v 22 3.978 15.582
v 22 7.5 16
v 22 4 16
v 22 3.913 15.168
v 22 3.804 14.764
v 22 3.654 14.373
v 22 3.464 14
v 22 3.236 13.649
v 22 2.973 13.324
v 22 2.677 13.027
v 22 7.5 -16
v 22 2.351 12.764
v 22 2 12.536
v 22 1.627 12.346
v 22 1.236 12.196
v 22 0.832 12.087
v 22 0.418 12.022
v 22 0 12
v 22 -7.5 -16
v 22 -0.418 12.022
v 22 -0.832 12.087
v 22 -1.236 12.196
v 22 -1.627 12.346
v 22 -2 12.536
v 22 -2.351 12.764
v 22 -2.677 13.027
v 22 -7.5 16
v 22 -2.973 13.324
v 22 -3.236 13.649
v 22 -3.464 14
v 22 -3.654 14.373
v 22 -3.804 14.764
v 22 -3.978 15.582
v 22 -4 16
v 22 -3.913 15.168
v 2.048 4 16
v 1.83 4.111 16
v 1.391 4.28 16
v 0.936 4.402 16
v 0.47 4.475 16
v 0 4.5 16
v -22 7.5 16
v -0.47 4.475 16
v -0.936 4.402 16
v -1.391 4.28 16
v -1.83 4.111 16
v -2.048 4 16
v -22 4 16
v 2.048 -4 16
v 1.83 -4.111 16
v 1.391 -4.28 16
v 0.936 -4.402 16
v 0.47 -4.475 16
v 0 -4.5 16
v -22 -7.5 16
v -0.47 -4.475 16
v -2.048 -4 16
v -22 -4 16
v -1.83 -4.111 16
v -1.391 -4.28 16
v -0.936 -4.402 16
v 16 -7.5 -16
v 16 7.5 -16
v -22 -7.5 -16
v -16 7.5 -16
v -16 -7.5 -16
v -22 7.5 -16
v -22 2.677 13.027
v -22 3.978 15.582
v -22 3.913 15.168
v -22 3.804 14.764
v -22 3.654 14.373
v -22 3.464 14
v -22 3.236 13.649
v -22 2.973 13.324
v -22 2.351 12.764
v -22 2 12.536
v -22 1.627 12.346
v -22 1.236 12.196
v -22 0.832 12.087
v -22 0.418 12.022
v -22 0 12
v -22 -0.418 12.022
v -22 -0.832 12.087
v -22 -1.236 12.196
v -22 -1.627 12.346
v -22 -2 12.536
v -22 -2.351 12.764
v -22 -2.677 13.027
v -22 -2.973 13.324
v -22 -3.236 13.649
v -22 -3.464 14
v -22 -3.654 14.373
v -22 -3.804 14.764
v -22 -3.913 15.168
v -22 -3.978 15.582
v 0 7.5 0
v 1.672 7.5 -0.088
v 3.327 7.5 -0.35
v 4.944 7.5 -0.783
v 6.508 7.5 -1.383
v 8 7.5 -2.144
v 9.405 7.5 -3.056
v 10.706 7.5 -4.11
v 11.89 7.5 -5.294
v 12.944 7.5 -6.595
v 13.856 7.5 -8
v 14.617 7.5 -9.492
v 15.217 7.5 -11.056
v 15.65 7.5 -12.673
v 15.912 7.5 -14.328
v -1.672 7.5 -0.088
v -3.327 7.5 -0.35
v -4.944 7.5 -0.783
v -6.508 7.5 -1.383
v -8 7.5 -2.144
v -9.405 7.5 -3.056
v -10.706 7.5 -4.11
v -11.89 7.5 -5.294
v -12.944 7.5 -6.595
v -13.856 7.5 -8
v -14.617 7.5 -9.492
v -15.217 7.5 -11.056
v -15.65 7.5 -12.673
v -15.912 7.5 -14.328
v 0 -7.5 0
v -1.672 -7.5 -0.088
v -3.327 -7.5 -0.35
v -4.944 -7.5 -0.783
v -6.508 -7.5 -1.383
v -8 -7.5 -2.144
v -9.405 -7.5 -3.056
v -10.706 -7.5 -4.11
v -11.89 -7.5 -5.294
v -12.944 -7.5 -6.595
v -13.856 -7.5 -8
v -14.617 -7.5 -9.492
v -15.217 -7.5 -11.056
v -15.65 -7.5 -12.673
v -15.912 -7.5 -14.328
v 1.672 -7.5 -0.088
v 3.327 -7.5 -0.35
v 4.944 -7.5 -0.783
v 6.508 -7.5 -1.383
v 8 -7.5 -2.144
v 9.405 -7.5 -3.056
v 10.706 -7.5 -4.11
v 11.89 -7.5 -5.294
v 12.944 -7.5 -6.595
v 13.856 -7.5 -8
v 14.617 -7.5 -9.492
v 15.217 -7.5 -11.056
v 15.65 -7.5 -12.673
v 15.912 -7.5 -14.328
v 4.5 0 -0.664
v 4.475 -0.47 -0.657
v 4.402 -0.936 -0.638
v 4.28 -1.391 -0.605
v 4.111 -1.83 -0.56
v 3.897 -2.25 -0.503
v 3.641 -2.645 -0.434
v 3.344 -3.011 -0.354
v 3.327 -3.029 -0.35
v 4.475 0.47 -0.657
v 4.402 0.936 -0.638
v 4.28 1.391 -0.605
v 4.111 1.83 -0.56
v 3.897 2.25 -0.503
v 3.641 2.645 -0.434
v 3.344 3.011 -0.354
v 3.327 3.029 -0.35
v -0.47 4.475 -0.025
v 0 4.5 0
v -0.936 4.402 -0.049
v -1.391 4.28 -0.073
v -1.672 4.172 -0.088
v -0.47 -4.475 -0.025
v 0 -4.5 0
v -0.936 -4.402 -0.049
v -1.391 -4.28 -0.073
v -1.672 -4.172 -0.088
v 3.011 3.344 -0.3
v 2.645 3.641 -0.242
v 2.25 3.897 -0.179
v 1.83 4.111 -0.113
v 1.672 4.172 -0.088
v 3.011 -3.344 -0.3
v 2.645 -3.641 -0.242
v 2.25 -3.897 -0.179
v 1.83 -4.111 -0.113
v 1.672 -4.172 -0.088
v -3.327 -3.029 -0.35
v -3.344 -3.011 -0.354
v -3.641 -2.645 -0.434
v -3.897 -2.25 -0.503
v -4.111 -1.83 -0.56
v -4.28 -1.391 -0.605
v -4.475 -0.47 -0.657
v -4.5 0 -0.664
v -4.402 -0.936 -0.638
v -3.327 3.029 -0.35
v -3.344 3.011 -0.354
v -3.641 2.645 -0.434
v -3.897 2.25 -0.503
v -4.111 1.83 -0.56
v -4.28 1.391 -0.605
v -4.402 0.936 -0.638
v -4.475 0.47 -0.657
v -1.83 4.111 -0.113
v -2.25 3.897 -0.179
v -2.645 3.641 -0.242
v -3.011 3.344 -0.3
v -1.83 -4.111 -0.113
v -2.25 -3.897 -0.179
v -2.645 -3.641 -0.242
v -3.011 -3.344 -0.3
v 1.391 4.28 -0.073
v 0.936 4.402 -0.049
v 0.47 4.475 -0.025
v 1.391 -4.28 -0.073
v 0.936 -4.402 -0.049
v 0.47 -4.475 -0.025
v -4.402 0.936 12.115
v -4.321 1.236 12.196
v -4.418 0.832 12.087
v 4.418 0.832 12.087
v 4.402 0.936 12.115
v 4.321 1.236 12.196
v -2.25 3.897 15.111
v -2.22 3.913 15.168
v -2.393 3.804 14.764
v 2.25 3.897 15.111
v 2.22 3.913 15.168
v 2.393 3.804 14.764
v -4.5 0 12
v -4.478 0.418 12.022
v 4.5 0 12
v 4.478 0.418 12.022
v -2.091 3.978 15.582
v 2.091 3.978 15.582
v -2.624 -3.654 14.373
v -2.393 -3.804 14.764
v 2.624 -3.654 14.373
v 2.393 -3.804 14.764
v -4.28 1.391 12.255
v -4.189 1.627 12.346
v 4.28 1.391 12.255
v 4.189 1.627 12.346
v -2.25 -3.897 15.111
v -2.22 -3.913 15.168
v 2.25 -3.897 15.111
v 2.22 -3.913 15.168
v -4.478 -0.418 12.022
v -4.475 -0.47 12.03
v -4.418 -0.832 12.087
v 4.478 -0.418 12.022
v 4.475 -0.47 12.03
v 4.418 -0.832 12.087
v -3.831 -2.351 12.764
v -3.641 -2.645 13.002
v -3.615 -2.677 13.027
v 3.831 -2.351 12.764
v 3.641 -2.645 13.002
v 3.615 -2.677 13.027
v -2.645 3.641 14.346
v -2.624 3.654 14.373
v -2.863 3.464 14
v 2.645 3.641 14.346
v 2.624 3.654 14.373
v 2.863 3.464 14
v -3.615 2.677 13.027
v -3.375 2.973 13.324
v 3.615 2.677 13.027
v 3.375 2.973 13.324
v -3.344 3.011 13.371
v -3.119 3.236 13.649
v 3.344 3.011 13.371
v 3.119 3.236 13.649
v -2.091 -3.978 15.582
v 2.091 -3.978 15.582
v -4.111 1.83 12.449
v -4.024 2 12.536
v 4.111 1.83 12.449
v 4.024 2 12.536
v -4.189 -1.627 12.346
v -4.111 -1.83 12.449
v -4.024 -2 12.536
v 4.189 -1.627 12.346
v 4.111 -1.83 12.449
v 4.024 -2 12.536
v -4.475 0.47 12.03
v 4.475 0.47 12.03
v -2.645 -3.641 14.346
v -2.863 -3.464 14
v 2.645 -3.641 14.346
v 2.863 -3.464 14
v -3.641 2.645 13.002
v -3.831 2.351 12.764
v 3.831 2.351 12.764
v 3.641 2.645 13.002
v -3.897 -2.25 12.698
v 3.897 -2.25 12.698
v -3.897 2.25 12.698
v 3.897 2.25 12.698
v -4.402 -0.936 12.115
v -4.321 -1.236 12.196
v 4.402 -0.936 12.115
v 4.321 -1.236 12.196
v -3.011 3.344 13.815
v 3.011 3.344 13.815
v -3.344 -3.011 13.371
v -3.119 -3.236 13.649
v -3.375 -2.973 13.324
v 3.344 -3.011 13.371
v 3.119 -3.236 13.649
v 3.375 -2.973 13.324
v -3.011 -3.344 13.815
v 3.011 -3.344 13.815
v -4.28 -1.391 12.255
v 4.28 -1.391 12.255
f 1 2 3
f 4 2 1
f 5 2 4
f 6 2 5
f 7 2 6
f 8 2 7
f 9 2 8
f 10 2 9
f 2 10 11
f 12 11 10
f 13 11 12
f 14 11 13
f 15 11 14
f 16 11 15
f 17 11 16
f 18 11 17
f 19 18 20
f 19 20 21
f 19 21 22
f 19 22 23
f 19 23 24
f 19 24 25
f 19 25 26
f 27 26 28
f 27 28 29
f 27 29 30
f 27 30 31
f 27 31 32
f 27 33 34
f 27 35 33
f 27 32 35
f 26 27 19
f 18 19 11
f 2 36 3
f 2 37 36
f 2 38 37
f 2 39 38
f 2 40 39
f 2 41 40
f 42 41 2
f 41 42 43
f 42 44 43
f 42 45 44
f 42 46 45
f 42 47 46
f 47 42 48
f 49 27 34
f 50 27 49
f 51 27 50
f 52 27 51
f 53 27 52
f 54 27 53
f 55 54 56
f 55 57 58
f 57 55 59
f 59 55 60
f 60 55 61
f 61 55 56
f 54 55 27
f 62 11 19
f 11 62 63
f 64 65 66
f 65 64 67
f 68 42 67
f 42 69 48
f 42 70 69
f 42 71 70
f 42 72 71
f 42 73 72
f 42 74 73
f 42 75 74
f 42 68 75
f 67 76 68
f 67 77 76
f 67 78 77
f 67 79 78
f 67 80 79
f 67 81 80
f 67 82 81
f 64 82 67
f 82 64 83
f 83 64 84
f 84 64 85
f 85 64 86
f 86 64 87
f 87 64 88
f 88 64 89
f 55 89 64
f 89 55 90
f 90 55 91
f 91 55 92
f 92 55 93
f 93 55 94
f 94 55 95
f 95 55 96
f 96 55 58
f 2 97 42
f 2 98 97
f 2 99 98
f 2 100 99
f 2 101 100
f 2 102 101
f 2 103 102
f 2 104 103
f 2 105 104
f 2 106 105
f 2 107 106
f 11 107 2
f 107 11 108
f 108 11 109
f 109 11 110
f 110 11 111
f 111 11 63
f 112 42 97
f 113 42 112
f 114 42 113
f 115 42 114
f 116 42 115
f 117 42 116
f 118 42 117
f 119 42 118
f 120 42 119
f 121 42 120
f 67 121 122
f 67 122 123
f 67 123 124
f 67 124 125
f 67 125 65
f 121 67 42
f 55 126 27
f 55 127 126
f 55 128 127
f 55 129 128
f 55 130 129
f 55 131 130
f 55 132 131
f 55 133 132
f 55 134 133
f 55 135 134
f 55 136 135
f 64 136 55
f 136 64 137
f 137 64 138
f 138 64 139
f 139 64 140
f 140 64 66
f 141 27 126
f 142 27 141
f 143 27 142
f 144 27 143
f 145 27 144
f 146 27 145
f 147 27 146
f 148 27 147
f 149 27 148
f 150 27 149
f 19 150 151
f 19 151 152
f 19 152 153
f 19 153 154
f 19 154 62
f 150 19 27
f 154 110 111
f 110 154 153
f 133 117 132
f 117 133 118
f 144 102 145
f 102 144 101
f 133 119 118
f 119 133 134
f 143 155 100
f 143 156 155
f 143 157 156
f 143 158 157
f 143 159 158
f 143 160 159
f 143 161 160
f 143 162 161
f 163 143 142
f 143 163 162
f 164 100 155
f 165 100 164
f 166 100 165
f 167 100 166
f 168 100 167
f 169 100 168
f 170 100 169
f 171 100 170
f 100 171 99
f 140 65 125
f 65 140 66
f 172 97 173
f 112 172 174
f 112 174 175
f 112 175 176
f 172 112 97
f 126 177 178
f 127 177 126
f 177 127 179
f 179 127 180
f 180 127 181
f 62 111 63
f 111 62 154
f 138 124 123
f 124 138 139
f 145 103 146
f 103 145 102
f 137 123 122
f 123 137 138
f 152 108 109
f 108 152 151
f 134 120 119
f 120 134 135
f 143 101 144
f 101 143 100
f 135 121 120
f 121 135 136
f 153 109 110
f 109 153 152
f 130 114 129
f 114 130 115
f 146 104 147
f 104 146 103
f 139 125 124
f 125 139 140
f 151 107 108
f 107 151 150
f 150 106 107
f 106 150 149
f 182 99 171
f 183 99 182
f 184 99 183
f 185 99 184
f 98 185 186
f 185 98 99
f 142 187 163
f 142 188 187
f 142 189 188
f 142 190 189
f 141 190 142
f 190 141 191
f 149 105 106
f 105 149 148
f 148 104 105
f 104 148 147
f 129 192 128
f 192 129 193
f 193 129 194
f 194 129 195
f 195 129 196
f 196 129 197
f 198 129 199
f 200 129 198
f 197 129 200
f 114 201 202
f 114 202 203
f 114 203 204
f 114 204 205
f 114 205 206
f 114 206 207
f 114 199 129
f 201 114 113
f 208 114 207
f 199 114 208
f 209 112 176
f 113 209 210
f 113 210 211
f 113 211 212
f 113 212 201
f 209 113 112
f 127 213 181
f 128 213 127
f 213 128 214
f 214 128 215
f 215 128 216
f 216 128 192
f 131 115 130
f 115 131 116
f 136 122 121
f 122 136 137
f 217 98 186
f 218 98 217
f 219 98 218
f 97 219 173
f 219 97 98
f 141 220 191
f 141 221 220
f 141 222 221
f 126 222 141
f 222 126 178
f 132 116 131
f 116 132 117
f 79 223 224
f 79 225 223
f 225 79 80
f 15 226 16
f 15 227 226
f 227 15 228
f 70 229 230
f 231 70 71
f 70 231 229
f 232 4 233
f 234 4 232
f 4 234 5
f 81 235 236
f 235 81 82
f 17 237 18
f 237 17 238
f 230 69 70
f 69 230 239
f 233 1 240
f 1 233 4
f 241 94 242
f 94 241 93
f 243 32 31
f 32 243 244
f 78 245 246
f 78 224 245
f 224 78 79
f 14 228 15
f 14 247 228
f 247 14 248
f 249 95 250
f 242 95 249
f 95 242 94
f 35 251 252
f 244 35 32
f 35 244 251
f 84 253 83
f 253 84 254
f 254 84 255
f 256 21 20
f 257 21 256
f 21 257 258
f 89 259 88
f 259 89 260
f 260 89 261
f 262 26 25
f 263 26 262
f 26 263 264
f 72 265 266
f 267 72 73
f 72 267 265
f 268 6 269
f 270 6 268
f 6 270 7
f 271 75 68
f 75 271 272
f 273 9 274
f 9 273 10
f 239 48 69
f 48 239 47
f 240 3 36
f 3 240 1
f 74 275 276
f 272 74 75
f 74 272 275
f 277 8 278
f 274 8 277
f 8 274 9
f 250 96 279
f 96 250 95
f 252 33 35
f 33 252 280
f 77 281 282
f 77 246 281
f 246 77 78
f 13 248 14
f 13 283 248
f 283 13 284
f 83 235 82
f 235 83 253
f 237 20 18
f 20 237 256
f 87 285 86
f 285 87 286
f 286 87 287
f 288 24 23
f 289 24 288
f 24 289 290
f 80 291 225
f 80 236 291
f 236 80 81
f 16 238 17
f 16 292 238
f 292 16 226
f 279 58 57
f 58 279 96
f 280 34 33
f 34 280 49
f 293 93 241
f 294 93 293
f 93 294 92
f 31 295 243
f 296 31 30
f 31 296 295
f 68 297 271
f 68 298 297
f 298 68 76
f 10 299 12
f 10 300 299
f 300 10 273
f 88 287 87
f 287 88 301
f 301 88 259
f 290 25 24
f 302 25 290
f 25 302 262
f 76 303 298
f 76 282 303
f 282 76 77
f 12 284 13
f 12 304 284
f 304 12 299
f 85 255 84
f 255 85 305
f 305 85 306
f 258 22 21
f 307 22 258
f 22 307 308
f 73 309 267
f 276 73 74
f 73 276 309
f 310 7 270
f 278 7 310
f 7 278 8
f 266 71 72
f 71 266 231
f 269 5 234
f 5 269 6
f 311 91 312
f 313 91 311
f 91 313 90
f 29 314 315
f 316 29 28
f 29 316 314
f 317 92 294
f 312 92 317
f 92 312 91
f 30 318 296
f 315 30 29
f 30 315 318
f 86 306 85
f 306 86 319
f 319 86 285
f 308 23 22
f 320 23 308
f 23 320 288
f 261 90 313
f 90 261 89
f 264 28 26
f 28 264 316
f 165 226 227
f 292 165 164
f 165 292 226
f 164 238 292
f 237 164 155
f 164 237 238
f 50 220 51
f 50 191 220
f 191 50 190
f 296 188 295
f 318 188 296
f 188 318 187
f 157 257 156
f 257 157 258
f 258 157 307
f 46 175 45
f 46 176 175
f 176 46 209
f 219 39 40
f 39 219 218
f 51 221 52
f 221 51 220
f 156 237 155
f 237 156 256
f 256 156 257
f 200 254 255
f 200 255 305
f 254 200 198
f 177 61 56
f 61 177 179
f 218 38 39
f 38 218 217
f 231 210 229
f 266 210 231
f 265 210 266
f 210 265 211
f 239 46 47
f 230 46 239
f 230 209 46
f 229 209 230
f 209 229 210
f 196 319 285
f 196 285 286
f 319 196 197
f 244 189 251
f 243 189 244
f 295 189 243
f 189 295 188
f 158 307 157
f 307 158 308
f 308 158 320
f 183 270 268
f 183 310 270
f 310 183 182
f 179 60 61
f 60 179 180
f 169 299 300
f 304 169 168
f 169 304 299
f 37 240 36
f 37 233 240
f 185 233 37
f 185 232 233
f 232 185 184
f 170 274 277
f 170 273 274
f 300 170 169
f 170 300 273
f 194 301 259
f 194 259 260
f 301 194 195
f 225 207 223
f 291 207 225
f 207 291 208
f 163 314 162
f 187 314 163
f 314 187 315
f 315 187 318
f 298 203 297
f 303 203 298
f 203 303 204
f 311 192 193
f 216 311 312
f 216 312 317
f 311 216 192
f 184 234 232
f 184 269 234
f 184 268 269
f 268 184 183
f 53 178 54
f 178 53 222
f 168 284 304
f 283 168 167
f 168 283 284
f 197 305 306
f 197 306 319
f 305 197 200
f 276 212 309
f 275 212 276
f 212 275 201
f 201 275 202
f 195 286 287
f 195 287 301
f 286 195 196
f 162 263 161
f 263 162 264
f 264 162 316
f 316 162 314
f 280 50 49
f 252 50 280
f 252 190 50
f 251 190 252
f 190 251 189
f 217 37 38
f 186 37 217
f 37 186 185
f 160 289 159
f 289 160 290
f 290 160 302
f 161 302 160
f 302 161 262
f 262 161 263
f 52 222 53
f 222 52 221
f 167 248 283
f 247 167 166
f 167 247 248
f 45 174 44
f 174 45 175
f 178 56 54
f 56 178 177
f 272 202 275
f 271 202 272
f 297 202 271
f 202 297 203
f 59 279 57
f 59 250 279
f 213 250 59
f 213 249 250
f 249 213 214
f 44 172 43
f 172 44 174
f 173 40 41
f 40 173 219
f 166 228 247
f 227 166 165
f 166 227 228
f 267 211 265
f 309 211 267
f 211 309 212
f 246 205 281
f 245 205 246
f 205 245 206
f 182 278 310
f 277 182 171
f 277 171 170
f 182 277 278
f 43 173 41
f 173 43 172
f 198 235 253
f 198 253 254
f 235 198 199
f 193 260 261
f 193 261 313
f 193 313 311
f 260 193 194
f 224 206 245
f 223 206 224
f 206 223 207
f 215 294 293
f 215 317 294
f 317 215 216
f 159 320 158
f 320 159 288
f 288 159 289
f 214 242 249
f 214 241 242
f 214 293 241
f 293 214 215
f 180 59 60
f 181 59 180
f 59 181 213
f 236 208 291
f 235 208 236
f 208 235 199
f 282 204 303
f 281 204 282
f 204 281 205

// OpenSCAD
difference() {

cube([44, 15, 32], center=true);

translate([0, 0, -16])
rotate([90, 0, 0])
cylinder(100, r=16, $fn=60, center=true);    
    
translate([0, 0, 16])
rotate([0, 90, 0])
cylinder(100, r=4, $fn=60, center=true); 
    
    
cylinder(100, r=4.5, $fn=60, center=true); 
}


   
